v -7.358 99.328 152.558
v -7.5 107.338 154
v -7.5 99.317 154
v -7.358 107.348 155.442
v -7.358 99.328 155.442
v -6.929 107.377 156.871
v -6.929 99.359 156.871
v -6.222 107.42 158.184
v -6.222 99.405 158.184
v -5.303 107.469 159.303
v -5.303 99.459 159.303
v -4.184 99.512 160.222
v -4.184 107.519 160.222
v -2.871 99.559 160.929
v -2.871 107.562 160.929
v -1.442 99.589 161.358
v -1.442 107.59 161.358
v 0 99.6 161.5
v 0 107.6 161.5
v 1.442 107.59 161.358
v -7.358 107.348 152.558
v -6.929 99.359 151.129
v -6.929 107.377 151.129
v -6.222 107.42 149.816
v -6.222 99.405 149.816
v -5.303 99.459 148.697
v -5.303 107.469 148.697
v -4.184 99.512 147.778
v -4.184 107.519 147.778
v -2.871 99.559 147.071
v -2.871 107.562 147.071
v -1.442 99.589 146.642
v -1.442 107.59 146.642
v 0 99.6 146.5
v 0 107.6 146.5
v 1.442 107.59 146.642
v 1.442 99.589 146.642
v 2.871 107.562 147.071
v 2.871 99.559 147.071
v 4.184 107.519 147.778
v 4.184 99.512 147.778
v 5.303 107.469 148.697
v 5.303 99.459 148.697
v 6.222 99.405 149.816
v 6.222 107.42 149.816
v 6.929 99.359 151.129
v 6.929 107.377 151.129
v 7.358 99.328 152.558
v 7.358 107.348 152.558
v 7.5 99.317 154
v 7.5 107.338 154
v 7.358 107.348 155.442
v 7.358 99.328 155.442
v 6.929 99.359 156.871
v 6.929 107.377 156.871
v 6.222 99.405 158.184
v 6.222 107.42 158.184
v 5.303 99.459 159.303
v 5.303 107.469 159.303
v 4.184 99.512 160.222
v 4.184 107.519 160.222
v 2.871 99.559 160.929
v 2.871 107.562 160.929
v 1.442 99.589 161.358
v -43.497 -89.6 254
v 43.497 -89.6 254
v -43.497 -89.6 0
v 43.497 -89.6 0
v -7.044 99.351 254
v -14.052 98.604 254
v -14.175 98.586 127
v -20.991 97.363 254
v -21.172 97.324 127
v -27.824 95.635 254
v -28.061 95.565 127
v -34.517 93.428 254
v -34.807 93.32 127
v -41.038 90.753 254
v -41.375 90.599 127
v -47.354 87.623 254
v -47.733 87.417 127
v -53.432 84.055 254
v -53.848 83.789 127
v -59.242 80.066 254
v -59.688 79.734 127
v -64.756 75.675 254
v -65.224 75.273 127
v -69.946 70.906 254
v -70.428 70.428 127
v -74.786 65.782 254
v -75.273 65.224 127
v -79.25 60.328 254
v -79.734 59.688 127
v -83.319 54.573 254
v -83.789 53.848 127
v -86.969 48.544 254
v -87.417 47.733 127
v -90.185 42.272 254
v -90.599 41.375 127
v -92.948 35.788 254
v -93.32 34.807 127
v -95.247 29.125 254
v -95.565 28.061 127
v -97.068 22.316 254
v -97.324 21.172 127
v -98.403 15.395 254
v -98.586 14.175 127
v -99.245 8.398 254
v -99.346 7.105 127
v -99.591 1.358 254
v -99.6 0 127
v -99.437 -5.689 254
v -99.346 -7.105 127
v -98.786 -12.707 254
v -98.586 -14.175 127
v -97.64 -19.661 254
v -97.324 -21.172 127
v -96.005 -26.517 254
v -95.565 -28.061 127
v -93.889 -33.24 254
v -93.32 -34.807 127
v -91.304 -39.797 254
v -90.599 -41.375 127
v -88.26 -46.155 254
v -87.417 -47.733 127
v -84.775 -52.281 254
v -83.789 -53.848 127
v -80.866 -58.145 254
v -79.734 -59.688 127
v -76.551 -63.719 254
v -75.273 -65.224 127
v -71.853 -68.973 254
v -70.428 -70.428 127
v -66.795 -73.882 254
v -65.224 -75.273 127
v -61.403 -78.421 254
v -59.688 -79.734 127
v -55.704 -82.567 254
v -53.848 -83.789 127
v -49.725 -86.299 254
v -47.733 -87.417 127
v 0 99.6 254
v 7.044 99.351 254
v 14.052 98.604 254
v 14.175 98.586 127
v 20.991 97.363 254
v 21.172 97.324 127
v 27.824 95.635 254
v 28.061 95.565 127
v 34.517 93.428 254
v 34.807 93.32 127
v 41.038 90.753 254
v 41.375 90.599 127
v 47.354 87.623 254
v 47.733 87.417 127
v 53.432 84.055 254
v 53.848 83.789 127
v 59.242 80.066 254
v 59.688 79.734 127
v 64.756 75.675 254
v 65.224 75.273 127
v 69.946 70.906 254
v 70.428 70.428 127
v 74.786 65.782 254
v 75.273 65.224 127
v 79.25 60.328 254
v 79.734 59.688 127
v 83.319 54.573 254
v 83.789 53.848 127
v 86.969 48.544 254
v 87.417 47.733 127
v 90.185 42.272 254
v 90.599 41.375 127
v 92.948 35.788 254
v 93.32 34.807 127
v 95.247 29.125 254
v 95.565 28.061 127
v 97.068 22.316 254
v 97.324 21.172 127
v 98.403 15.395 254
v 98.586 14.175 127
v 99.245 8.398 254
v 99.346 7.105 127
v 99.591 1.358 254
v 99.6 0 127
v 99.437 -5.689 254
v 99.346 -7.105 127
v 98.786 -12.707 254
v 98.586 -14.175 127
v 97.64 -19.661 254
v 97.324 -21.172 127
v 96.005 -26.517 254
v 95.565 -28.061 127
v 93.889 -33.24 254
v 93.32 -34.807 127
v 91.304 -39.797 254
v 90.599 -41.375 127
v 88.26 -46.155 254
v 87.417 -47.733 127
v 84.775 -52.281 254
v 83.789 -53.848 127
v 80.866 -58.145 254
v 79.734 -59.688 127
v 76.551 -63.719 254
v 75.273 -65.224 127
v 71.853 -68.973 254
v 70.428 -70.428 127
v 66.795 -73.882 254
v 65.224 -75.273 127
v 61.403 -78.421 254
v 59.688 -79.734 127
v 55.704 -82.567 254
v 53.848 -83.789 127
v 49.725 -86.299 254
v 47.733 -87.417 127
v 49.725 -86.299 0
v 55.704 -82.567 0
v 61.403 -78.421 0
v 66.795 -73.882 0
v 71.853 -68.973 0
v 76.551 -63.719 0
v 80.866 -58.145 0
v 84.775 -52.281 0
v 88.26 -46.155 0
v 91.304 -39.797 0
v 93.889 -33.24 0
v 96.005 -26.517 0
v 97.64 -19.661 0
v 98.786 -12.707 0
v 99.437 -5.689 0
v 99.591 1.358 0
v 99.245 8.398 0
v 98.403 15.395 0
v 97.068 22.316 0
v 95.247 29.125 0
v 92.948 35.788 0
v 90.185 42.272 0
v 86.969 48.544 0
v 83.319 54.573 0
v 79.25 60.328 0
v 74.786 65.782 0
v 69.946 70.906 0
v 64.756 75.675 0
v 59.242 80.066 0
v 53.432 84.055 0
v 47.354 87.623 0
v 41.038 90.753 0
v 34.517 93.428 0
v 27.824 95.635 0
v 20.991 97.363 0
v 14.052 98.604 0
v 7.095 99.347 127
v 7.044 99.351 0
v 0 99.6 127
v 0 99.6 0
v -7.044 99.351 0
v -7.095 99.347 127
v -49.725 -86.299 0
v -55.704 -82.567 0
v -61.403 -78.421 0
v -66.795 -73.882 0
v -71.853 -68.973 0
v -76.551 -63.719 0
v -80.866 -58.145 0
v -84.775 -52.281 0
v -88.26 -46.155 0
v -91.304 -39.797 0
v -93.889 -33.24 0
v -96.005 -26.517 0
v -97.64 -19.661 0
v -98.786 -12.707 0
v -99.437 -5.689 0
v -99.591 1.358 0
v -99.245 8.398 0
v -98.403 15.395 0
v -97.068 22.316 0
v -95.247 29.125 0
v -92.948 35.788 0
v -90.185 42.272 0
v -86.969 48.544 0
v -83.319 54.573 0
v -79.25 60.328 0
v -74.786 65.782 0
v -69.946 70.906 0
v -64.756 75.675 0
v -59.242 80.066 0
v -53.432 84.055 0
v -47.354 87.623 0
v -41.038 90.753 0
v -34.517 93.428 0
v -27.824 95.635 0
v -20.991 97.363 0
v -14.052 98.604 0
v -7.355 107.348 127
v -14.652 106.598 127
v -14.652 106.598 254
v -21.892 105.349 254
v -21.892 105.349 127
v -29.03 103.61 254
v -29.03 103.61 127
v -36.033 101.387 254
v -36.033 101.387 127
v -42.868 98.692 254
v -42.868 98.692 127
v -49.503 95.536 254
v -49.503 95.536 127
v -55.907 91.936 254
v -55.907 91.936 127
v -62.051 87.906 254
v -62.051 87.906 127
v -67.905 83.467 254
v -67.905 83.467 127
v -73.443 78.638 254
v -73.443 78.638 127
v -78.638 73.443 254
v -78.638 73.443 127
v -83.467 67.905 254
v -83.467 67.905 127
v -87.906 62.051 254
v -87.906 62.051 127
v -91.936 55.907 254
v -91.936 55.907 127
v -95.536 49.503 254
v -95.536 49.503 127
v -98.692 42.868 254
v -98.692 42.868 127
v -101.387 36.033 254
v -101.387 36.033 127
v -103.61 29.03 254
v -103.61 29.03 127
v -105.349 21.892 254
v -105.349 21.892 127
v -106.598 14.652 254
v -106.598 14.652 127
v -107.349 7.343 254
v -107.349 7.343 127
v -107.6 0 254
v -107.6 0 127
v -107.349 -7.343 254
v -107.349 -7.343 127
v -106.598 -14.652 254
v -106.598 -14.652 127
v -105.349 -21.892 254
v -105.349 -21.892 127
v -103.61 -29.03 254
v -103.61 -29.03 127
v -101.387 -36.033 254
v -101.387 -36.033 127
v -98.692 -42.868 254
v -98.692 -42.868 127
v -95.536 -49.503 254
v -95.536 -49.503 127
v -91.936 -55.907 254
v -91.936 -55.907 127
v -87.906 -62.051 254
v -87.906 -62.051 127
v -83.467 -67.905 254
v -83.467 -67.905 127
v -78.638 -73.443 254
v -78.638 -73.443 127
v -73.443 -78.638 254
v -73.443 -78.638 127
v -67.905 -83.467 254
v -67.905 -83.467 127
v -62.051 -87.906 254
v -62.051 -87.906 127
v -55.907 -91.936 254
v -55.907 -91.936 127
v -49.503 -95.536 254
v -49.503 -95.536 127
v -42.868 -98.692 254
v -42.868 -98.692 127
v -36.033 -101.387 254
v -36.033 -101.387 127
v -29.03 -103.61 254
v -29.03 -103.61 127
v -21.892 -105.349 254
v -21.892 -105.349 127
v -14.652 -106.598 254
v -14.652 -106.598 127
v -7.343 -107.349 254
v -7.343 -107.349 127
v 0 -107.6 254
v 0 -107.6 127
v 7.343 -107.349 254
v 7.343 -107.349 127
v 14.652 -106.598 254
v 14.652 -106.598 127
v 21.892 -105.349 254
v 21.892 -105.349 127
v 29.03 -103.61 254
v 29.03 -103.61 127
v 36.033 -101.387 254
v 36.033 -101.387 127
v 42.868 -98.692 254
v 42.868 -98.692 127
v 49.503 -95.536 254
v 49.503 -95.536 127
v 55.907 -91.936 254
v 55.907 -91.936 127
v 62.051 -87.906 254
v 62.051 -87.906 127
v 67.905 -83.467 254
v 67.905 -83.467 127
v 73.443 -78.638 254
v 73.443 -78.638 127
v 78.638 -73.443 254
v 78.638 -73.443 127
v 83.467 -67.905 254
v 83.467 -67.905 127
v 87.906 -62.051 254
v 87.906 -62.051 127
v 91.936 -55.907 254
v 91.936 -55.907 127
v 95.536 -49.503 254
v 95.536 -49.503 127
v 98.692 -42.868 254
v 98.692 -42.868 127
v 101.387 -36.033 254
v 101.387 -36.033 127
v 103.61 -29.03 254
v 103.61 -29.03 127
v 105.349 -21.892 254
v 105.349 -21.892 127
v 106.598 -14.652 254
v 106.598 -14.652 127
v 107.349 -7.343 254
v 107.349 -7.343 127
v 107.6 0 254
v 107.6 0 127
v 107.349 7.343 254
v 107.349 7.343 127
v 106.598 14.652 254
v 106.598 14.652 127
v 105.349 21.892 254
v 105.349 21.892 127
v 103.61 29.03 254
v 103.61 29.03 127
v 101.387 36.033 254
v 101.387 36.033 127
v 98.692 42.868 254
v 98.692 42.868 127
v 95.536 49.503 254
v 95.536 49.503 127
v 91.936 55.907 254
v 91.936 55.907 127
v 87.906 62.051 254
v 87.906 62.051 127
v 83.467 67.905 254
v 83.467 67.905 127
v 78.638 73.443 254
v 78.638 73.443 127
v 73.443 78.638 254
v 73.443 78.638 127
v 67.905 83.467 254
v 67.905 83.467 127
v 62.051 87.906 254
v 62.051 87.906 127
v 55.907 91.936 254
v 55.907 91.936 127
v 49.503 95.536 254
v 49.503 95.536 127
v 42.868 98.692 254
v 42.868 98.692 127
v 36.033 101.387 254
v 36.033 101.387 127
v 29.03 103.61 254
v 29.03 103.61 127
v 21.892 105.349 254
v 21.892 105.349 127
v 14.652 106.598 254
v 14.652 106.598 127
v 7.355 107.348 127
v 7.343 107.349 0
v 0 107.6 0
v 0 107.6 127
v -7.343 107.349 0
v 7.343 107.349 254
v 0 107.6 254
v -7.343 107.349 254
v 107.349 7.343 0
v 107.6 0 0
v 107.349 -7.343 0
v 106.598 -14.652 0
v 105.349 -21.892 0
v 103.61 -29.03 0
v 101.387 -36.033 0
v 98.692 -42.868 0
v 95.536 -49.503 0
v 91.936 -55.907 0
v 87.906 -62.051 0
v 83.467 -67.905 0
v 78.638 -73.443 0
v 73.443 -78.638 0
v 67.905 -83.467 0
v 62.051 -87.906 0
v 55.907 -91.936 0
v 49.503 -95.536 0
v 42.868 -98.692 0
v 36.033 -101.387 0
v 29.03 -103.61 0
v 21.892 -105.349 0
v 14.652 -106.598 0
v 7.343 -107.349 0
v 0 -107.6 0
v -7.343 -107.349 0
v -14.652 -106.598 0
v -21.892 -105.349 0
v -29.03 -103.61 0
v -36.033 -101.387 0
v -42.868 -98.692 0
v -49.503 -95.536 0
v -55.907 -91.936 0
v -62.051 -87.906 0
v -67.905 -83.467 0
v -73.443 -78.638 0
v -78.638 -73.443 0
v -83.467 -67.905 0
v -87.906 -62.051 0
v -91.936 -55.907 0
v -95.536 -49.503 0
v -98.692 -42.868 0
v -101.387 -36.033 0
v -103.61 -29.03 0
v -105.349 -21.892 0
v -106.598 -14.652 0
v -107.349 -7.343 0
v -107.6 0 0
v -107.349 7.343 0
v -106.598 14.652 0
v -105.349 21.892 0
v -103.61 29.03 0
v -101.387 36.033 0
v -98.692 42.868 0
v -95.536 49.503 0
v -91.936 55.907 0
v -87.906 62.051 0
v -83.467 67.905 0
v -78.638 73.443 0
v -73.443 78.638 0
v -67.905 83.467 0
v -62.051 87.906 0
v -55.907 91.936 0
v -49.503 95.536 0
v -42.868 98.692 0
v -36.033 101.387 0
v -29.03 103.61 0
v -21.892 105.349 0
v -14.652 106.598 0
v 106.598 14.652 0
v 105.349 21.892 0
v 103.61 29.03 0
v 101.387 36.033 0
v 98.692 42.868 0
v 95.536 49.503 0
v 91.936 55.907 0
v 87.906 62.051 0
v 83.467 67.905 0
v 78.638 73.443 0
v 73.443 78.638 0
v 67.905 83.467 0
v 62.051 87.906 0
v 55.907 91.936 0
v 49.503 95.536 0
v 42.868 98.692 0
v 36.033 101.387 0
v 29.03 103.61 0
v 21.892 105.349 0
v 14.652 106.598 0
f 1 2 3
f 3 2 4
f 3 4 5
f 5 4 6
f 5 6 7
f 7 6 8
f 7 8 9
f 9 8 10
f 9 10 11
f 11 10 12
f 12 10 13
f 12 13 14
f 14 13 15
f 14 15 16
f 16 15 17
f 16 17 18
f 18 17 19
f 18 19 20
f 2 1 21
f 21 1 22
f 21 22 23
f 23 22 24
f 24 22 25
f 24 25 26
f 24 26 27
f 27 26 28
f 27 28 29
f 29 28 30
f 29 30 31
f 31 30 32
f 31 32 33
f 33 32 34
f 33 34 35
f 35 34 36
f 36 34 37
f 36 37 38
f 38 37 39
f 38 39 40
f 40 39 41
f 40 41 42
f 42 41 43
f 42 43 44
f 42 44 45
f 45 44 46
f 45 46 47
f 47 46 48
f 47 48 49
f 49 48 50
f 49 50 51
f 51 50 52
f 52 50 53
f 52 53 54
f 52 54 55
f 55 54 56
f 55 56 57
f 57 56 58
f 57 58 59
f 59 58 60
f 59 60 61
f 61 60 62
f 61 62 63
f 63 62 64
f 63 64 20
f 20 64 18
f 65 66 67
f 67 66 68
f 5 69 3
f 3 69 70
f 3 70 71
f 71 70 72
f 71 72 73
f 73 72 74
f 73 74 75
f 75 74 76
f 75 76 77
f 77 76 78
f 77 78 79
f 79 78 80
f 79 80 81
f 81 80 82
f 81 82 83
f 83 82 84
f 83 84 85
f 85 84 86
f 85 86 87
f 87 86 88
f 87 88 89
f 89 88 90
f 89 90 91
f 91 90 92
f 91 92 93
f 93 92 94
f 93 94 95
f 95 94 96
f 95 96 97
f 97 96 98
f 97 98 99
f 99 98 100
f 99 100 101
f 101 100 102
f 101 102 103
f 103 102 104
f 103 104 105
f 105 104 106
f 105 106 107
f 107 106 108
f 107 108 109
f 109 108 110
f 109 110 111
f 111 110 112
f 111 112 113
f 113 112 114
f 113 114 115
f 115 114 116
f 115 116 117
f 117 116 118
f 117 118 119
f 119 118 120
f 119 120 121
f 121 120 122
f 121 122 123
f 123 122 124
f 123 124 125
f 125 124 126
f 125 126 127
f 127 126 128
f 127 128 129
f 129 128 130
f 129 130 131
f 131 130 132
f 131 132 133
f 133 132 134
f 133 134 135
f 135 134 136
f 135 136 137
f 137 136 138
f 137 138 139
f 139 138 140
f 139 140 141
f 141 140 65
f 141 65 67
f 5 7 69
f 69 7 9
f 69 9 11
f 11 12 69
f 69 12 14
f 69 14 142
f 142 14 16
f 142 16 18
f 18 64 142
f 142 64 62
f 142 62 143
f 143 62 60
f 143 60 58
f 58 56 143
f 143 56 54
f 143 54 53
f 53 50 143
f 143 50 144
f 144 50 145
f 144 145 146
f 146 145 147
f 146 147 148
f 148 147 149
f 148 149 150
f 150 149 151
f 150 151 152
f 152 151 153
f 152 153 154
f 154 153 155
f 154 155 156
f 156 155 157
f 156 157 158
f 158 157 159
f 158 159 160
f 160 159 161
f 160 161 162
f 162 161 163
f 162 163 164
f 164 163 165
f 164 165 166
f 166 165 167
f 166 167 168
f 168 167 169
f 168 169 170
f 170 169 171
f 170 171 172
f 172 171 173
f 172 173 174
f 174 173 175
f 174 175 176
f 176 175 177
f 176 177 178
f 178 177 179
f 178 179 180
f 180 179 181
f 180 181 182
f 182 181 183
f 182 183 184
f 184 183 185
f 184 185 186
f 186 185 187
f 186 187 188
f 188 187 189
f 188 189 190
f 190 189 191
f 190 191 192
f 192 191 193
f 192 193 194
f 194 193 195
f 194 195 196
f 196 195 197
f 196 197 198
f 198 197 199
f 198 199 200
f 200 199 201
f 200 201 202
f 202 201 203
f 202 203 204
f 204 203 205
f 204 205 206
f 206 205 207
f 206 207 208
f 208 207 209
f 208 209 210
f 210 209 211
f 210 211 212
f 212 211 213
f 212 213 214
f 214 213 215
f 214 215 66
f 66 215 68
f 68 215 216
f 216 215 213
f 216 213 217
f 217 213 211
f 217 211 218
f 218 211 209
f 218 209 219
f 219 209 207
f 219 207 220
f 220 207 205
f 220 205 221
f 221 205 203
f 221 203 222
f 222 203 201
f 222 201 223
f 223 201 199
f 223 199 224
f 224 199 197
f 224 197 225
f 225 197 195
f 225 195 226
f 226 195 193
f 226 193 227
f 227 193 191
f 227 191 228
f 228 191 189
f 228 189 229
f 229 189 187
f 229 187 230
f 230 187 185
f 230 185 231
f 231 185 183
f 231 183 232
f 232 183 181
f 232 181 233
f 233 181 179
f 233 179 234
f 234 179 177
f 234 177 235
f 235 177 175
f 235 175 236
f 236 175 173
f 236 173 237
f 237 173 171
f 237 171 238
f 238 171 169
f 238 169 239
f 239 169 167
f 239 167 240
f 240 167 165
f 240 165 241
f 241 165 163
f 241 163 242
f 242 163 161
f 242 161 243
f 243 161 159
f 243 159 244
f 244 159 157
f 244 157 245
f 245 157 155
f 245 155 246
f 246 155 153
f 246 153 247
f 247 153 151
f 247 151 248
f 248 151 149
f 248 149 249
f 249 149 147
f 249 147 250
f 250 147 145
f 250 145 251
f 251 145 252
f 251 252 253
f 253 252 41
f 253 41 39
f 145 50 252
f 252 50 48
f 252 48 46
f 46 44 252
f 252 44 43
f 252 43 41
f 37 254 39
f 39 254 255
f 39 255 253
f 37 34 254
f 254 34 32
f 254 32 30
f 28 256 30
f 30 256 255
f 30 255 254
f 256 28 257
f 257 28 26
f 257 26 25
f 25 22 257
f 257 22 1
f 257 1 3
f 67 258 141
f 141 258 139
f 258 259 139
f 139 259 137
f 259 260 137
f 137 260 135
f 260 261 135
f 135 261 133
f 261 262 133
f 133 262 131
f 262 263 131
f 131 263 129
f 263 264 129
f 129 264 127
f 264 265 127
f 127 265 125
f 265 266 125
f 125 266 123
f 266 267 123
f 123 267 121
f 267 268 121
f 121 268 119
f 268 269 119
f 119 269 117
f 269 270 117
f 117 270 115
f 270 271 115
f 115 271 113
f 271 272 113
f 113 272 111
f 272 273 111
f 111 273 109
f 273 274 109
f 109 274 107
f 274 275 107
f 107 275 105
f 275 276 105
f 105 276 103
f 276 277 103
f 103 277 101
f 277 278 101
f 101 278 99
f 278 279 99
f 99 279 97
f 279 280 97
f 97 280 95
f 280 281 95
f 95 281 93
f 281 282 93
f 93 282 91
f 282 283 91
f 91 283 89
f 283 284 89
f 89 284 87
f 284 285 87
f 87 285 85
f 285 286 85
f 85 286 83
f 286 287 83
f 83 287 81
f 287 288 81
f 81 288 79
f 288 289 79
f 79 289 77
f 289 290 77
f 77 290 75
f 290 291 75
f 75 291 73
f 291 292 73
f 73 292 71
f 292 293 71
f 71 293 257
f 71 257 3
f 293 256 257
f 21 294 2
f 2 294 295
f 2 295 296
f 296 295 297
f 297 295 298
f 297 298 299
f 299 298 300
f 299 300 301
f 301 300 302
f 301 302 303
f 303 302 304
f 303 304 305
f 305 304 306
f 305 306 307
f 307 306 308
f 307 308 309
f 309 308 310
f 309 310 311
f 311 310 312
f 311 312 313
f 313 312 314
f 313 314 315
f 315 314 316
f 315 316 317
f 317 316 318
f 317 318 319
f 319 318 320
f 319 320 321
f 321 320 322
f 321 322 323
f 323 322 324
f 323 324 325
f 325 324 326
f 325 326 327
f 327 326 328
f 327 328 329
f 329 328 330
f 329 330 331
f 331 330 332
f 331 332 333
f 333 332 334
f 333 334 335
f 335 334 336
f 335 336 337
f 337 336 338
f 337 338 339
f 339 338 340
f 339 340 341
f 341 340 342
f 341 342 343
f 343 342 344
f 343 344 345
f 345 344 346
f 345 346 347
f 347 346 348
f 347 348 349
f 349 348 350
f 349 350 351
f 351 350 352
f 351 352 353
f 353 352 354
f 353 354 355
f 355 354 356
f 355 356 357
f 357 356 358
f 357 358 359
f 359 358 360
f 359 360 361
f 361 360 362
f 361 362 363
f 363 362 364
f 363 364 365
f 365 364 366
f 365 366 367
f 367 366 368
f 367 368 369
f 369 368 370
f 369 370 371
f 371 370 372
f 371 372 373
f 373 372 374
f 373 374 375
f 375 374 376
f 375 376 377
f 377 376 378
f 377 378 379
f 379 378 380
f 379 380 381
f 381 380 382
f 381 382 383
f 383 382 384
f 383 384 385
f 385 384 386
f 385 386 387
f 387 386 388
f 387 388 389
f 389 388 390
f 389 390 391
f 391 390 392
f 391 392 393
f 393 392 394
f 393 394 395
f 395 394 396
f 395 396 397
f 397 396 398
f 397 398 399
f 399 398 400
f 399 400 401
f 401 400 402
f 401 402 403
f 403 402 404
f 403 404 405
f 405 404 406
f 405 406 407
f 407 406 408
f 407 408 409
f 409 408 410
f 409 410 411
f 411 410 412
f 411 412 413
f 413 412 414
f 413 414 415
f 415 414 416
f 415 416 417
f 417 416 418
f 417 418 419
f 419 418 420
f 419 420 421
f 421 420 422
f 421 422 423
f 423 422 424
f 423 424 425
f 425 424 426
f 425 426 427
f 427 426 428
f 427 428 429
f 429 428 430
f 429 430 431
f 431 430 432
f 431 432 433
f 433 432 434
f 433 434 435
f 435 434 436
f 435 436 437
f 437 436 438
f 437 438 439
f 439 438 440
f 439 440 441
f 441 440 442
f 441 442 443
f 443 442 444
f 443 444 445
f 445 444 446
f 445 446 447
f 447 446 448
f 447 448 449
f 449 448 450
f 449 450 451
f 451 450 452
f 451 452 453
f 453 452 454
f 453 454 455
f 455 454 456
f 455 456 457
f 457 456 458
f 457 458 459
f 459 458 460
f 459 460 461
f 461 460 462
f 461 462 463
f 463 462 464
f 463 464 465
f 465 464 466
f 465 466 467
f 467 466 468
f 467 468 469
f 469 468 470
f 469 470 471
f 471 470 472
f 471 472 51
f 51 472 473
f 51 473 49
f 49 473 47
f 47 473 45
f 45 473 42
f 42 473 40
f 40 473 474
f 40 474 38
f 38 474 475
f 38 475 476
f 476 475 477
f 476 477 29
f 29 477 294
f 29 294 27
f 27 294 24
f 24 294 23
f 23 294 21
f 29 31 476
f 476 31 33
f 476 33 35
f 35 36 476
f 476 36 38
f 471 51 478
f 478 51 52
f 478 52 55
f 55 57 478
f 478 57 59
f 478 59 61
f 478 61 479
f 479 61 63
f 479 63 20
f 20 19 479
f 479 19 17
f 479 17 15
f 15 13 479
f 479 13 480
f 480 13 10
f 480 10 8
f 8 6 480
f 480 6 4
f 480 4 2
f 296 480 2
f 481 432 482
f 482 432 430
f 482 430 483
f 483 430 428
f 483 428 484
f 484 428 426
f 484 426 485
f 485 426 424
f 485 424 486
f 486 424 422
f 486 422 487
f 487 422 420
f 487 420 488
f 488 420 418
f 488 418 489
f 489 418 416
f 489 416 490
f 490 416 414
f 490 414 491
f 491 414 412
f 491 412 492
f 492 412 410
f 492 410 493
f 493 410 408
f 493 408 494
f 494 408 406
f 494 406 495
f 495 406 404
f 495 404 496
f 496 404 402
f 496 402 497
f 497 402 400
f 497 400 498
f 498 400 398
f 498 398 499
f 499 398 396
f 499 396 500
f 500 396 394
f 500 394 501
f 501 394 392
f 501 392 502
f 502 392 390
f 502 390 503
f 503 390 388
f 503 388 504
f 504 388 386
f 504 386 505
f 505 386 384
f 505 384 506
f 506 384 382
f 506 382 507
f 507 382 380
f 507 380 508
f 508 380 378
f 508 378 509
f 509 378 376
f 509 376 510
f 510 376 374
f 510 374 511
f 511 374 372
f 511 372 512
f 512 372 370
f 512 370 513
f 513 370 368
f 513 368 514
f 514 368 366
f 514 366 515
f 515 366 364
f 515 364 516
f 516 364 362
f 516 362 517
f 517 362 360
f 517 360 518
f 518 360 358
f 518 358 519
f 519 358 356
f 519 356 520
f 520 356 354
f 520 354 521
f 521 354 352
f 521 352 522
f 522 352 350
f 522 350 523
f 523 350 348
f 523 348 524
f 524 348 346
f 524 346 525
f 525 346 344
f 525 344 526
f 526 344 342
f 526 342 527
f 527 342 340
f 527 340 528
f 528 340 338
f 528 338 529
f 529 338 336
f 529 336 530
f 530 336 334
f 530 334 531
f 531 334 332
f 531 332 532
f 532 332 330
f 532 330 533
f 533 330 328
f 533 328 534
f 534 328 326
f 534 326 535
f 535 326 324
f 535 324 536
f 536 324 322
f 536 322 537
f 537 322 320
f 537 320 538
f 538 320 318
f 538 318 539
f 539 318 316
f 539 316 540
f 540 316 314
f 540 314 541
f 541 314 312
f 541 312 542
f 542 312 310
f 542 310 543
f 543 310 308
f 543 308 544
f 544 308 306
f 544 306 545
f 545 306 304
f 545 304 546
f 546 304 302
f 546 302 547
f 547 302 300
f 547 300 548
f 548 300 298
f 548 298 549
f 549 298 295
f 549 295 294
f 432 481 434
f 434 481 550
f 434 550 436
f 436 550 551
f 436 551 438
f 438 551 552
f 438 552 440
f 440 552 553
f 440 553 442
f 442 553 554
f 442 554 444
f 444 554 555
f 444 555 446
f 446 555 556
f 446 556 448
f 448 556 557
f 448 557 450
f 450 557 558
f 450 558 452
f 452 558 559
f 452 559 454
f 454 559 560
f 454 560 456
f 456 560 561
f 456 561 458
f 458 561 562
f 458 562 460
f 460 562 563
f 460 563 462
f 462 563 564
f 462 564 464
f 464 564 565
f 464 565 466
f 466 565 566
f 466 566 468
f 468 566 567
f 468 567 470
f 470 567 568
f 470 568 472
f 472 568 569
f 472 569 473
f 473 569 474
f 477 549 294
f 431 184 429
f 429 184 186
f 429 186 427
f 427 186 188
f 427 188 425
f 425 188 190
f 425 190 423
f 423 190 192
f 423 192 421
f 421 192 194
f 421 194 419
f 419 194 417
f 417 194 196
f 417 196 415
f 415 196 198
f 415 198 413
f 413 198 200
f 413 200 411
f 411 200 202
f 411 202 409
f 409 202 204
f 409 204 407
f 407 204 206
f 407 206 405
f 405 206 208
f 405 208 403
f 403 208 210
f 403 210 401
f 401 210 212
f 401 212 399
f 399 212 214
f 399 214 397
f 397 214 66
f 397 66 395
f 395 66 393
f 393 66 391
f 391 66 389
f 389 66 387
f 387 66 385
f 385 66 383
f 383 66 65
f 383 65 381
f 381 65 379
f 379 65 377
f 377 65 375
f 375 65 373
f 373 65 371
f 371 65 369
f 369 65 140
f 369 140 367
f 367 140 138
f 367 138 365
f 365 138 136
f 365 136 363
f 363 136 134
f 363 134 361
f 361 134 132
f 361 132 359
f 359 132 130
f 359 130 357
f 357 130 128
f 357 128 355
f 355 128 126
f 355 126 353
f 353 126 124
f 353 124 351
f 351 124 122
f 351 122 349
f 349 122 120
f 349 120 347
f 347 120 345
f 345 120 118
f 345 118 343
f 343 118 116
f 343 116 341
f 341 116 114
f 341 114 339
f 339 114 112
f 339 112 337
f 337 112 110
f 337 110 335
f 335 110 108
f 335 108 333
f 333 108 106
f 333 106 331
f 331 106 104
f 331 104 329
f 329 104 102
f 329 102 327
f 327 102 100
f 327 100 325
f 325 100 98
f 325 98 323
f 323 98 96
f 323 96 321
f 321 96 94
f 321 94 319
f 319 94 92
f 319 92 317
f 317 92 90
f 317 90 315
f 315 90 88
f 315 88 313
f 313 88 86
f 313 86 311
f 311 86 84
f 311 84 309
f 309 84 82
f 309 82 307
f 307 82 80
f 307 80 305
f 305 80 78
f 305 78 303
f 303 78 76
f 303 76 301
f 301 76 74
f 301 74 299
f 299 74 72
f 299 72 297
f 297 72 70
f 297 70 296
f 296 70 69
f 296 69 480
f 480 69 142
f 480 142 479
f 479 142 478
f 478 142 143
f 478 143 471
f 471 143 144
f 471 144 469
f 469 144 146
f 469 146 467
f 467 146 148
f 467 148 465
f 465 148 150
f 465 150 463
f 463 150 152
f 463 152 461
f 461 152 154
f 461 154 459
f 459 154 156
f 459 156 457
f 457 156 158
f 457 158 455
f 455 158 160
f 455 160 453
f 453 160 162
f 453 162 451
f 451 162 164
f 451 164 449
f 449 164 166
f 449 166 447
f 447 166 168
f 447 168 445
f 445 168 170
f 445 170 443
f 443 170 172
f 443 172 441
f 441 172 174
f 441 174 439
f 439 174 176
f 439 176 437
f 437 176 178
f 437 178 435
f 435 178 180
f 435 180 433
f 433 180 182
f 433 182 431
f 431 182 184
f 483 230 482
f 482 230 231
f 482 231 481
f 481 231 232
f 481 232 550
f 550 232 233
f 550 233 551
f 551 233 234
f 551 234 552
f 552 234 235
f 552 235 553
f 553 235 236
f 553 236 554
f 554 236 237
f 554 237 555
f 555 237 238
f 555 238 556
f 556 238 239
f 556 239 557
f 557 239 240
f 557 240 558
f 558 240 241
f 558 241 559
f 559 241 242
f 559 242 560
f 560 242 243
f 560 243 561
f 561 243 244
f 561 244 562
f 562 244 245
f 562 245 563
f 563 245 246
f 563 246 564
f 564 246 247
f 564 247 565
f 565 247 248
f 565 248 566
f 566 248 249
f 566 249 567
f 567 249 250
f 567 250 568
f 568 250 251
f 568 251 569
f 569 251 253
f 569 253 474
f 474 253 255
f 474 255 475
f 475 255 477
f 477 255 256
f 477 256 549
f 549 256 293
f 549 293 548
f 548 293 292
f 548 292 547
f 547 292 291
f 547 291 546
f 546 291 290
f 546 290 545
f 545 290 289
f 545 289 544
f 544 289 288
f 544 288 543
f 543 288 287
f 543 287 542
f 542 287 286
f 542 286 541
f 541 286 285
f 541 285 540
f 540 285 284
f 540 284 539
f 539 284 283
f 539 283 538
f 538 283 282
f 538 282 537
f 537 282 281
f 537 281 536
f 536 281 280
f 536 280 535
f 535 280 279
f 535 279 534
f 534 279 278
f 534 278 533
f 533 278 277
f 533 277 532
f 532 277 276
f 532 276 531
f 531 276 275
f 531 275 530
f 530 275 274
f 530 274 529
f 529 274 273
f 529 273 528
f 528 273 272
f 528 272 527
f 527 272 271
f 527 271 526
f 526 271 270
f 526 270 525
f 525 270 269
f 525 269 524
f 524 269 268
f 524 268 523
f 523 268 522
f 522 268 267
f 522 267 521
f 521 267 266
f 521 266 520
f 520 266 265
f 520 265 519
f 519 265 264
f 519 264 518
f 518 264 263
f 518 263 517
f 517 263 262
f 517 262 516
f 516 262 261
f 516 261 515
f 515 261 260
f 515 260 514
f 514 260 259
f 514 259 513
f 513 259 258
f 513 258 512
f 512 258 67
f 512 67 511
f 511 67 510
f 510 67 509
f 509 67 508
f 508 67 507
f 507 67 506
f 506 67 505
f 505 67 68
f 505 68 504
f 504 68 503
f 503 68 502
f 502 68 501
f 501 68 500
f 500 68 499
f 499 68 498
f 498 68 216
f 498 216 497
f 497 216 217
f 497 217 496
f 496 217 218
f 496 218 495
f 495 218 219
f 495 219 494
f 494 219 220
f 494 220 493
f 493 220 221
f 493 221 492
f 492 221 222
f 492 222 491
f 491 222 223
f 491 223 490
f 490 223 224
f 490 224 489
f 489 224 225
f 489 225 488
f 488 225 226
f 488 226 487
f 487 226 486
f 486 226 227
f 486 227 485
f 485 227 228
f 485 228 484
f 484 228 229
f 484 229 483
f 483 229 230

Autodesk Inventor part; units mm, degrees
ref_plane "YZ Plane" through (0, 0, 0) normal (1, 0, 0) x (0, 1, 0)
ref_plane "XZ Plane" through (0, 0, 0) normal (0, 1, 0) x (-1, 0, 0)
ref_plane "XY Plane" through (0, 0, 0) normal (0, 0, 1) x (1, 0, 0)
sketch "Sketch1" plane through (0, 0, 0) normal (0, 0, 1) x (1, 0, 0)
  circle A0 centre (0, 0) radius 99.6
  circle A1 centre (0, 0) radius 107.6
  dimension "d0" = 199.2
  dimension "d1" = 8
extrude "Extrusion1" add sketch "Sketch1" along normal blind 254
sketch "Sketch3" plane through (0, 0, 0) normal (0, 0, -1) x (-1, 0, 0)
  circle A0 centre (0, 0) radius 107.6 construction
  circle A1 centre (0, 0) radius 99.6 construction
  arc A2 (-43.4971, -89.6) -> (43.4971, -89.6) centre (0, 0) ccw
  line L0 (0, -99.6) -> (0, -89.6) construction
  line L1 (43.4971, -89.6) -> (-43.4971, -89.6)
  dimension "d11" = 10
extrude "Extrusion3" add sketch "Sketch3" against normal up to surface (254 mm away)
sketch "Sketch4" plane through (0, 0, 0) normal (0, 1, 0) x (-1, 0, 0)
  circle A0 centre (0, 154) radius 7.5
  line L0 (107.6, 254) -> (-107.6, 254) construction
  line L1 (107.6, 0) -> (-107.6, 0) construction
  point P0 (0, 0)
  point P1 (0, 0)
  dimension "d14" = 15
  dimension "d15" = 100
extrude "Extrusion4" cut sketch "Sketch4" along normal up to surface
properties part number "FrontTubeV1_3DPrint"
